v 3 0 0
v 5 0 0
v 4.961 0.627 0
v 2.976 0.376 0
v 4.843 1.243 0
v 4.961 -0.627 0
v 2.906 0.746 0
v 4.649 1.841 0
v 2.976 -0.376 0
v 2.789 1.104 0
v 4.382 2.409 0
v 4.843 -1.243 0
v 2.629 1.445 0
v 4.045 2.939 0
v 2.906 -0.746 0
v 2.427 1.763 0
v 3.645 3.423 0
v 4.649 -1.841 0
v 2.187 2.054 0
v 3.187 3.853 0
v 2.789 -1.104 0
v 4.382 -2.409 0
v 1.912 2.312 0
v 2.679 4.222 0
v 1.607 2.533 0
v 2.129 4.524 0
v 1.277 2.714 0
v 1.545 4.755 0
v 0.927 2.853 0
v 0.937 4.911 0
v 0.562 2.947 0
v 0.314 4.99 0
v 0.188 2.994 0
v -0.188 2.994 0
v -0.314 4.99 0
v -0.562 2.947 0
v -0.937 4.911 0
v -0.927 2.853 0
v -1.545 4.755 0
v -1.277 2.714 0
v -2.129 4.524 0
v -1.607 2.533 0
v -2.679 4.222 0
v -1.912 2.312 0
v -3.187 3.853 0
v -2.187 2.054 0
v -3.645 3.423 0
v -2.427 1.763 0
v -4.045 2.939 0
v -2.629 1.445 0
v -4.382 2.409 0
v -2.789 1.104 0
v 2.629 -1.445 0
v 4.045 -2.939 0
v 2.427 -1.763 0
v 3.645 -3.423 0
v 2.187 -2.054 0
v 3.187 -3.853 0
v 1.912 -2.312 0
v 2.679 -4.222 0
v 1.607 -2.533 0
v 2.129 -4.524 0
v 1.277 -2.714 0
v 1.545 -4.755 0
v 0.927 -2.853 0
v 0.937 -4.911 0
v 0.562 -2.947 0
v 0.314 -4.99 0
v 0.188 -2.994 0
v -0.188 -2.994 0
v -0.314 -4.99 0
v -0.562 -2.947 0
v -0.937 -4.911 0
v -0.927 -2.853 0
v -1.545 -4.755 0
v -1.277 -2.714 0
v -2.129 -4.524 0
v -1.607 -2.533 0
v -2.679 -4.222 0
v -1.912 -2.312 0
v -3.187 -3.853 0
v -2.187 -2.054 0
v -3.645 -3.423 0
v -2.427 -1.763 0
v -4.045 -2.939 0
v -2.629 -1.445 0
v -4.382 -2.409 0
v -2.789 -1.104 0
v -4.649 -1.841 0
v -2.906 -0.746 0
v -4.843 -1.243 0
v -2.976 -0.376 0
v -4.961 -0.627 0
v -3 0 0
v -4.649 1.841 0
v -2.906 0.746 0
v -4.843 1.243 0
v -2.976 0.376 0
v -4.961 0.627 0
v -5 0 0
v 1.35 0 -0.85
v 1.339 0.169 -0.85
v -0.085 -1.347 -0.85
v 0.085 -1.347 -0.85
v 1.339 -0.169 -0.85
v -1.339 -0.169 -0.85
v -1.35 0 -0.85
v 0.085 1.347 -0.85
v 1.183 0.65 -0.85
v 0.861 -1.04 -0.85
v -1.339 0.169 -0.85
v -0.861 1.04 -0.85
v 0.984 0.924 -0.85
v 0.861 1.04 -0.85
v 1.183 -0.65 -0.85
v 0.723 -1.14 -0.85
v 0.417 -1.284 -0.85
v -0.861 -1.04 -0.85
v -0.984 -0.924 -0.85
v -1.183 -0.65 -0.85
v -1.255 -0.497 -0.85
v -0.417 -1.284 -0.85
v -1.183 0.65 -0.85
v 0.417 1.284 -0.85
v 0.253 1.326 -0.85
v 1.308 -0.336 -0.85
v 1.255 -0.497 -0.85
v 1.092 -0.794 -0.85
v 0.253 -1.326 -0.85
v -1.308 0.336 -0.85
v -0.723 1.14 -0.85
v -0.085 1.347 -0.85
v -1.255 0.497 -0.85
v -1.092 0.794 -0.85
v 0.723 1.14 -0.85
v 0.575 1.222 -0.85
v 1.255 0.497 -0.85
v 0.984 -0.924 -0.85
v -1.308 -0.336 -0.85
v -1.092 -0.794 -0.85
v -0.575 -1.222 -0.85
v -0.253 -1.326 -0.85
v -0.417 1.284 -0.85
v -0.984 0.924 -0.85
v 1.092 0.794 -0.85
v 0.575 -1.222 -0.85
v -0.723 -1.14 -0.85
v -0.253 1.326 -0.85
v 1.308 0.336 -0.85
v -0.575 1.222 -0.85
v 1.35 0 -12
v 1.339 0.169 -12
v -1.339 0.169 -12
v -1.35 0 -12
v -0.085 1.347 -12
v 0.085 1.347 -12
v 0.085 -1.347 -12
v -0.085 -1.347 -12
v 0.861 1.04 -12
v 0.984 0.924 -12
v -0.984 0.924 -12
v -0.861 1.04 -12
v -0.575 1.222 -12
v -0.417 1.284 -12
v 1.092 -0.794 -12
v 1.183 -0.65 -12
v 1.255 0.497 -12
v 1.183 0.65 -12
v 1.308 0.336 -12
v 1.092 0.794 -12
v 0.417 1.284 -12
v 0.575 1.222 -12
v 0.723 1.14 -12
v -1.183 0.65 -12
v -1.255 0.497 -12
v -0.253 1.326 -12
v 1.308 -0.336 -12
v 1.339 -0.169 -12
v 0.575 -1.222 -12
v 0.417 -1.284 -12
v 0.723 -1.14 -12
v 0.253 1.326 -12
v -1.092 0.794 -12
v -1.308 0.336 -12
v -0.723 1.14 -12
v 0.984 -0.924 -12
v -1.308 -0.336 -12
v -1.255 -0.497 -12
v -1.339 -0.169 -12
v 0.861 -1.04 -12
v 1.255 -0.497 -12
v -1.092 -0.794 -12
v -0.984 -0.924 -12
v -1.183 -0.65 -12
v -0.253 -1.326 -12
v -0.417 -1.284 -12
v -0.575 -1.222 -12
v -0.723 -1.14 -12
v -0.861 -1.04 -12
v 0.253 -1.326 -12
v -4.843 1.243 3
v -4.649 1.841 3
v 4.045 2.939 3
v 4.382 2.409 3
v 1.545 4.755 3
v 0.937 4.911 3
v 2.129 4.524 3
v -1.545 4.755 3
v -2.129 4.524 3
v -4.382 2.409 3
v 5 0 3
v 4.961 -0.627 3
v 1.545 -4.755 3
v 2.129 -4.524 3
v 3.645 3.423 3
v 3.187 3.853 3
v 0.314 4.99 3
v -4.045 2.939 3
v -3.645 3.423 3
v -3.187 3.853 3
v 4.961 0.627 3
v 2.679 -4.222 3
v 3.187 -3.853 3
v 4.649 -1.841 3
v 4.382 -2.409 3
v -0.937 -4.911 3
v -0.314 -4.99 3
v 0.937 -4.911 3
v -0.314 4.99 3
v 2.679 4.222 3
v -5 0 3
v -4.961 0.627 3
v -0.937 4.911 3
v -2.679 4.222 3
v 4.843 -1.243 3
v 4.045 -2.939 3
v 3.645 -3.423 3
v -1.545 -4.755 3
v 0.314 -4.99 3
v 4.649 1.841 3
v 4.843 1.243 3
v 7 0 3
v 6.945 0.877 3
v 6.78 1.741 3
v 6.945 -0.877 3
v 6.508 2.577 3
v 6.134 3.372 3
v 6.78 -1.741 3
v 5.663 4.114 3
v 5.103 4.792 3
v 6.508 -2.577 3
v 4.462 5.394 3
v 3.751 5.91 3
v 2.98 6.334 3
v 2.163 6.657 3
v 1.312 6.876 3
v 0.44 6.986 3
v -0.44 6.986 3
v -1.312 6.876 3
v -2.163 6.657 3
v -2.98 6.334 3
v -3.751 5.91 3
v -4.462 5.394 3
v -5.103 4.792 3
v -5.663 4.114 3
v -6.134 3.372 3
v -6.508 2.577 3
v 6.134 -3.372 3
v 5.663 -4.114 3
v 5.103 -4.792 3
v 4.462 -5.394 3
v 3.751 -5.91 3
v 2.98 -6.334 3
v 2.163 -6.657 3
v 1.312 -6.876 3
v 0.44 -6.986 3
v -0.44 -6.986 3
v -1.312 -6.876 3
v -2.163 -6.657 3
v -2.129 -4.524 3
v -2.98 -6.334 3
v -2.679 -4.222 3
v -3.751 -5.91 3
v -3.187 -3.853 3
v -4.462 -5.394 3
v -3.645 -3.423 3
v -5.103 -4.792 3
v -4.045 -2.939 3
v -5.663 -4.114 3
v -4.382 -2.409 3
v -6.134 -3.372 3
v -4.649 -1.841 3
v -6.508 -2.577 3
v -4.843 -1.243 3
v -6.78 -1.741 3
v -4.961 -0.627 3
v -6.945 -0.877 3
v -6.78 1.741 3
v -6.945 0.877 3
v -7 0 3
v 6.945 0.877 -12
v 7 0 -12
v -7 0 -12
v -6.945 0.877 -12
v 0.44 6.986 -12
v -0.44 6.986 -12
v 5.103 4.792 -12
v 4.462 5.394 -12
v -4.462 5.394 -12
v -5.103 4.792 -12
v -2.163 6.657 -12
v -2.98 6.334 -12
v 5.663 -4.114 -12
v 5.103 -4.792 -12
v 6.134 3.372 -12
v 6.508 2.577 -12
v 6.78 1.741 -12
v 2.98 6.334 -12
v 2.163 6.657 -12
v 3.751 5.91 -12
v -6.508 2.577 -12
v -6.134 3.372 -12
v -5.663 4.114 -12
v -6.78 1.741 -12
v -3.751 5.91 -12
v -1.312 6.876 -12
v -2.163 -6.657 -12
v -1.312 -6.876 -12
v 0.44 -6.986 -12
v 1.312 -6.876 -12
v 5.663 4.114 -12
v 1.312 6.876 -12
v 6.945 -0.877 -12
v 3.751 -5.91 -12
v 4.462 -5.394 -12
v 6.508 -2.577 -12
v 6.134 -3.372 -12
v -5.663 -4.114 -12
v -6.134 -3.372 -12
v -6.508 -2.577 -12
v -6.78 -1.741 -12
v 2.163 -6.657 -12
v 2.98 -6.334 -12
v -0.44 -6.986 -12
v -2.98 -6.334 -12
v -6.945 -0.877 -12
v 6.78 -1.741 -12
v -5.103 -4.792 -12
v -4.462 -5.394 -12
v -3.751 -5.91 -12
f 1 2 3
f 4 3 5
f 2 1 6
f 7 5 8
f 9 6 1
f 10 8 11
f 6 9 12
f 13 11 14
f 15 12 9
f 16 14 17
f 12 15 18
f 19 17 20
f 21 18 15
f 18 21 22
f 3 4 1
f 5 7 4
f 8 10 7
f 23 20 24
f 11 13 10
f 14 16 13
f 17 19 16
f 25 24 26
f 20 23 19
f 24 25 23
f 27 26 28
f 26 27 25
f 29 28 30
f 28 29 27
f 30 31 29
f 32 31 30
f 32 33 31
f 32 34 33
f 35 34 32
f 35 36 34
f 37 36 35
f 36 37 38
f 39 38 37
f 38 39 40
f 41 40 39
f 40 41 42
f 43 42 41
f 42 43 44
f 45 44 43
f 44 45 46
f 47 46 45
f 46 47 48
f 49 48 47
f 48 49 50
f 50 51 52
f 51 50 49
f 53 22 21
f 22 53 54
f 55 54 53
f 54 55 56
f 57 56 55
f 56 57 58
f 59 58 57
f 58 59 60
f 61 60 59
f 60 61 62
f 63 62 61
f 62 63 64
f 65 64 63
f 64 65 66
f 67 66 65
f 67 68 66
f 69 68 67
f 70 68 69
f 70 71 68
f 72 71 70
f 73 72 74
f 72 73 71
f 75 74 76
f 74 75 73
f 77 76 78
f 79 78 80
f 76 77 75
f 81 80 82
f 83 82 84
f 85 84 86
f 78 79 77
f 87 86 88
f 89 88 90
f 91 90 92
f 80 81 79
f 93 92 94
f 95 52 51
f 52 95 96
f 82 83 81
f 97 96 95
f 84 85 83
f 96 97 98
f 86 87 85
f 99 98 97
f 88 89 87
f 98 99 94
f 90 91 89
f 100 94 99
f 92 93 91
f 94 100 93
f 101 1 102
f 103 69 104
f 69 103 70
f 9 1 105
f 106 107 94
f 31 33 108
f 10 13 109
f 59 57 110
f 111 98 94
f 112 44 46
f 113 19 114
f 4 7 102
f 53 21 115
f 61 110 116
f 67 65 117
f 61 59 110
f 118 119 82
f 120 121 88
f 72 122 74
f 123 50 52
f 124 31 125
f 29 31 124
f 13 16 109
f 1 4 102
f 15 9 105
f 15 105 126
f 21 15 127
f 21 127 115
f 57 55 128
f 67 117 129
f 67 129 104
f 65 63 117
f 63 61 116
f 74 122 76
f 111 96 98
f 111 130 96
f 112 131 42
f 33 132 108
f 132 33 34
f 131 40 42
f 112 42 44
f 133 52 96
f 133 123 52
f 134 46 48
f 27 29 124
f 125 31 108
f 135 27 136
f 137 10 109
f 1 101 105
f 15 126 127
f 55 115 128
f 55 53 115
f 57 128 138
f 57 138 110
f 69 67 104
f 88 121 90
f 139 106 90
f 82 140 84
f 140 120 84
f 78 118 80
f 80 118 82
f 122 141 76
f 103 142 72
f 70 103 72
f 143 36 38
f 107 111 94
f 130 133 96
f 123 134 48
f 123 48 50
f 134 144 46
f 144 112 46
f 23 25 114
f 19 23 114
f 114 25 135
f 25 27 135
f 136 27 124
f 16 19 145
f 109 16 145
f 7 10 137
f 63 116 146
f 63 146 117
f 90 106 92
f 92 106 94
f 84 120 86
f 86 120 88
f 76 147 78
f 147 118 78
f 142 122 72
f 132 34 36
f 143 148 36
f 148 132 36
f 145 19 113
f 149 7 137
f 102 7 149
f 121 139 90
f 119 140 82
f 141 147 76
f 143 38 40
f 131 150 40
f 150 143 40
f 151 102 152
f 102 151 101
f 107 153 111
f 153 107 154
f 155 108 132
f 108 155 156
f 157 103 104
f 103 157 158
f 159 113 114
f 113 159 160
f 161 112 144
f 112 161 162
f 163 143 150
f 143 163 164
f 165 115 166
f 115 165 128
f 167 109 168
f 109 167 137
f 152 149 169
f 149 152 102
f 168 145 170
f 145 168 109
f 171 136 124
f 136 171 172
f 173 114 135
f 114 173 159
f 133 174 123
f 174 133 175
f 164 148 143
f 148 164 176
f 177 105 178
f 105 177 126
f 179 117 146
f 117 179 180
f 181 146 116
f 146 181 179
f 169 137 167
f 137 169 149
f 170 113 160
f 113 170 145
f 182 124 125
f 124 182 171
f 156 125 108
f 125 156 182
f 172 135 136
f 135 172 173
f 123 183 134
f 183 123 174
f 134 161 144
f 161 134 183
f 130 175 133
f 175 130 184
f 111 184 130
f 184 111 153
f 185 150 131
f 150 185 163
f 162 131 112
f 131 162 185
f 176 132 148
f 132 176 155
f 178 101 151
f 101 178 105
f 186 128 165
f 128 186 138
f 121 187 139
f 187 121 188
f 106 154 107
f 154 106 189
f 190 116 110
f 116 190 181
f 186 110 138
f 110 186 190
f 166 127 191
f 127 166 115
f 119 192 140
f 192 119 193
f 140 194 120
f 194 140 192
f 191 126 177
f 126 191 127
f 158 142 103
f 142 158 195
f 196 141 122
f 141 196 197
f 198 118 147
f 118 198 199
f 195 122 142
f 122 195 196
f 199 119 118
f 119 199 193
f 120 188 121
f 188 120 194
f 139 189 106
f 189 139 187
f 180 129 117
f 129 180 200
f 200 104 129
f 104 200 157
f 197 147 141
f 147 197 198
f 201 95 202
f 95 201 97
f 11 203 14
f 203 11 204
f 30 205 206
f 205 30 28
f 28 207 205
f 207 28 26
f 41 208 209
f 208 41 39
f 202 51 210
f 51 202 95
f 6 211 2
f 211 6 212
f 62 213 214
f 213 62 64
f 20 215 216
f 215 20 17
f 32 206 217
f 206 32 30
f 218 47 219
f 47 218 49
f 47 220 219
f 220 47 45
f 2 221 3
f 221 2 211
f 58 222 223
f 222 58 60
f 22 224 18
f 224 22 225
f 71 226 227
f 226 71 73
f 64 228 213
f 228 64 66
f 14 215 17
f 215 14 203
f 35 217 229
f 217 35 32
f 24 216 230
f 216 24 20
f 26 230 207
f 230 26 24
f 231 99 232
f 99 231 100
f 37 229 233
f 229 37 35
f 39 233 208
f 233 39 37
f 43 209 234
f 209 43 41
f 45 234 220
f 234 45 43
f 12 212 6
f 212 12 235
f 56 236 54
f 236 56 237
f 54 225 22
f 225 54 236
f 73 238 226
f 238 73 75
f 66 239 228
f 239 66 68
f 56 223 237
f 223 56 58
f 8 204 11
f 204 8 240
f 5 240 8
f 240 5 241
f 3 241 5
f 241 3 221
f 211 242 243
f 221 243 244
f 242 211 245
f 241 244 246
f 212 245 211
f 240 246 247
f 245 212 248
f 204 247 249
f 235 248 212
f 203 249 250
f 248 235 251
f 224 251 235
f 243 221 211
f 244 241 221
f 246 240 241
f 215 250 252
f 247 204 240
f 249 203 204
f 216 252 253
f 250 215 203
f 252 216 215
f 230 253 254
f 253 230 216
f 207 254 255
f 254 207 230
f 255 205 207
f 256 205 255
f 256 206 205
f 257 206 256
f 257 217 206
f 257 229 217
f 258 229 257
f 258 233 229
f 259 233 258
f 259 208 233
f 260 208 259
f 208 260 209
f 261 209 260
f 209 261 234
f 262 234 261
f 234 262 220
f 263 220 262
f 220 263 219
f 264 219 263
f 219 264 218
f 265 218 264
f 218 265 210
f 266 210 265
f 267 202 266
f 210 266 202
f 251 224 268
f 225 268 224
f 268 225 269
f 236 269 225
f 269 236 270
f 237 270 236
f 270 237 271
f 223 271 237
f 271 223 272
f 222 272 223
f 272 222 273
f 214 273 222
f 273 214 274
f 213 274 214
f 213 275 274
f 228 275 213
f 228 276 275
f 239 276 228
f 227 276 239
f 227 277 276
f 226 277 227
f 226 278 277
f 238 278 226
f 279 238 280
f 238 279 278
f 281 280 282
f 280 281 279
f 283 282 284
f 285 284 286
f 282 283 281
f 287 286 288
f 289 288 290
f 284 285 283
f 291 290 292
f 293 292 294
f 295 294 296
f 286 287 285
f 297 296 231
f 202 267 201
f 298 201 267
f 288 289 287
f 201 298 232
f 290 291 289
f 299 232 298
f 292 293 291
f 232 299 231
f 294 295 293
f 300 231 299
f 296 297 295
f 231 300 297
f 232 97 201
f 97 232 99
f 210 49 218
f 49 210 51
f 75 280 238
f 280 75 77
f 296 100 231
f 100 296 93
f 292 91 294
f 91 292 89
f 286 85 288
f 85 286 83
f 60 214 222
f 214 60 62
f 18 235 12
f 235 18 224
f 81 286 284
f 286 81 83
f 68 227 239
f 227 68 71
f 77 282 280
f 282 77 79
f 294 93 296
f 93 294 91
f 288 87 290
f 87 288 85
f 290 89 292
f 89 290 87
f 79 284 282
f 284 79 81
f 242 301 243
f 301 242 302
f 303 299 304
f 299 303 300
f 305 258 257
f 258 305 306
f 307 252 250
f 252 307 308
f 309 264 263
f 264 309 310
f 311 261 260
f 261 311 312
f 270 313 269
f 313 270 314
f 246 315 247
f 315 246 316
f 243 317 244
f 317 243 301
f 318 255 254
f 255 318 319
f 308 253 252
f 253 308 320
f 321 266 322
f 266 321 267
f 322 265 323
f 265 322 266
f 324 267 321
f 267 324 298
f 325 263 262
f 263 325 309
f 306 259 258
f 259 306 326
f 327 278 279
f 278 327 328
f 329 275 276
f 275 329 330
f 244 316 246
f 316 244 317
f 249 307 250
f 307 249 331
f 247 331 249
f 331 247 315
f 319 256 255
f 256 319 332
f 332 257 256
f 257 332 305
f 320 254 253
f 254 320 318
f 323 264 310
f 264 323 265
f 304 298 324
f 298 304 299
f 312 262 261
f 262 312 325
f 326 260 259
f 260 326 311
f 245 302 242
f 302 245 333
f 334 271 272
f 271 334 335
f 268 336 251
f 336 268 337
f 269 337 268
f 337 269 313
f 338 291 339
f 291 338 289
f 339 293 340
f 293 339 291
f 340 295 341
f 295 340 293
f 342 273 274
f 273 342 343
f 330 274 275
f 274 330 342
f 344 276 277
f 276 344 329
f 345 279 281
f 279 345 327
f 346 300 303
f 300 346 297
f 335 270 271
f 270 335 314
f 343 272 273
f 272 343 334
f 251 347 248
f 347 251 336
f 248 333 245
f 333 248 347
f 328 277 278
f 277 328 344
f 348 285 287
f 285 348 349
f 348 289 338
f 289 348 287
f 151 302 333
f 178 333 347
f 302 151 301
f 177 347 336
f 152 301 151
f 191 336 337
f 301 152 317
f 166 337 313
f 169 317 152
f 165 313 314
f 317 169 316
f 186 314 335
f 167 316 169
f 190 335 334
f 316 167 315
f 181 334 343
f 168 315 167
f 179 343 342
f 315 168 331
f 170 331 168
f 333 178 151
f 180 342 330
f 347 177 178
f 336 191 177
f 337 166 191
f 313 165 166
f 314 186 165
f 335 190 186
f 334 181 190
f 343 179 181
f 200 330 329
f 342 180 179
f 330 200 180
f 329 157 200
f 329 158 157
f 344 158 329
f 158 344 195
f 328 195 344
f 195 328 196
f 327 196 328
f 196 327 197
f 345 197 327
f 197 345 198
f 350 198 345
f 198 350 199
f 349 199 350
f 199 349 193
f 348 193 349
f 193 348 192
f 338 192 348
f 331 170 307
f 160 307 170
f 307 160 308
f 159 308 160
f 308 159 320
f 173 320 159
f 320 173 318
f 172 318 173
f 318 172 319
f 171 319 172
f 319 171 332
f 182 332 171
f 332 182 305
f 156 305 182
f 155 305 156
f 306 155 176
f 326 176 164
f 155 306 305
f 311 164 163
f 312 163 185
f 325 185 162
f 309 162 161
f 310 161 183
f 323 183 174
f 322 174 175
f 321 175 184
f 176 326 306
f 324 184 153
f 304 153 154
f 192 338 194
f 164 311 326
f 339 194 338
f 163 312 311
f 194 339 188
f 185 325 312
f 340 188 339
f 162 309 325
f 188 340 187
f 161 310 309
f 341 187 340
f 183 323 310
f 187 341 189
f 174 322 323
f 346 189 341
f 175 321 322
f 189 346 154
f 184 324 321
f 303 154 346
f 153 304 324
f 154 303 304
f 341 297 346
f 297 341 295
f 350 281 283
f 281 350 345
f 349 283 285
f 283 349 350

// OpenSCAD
$fn = 50;

difference() {
	union() {
		translate(v = [0, 0, -12.0]) {
			cylinder(h = 15, r = 7.0);
		}
	}
	union() {
		translate(v = [0, 0, 0]) {
			rotate(a = [0, 0, 0]) {
				difference() {
					union() {
						translate(v = [0, 0, -15.0]) {
							cylinder(h = 15, r = 1.0);
						}
						translate(v = [0, 0, -0.85]) {
							cylinder(h = 0.85, r1 = 1.35, r2 = 3.0);
						}
						translate(v = [0, 0, -15.0]) {
							cylinder(h = 15, r = 1.35);
						}
						translate(v = [0, 0, -15.0]) {
							cylinder(h = 15, r = 1.0);
						}
					}
					union();
				}
			}
		}
		#cylinder(h = 3, r = 5.0);
	}
}
